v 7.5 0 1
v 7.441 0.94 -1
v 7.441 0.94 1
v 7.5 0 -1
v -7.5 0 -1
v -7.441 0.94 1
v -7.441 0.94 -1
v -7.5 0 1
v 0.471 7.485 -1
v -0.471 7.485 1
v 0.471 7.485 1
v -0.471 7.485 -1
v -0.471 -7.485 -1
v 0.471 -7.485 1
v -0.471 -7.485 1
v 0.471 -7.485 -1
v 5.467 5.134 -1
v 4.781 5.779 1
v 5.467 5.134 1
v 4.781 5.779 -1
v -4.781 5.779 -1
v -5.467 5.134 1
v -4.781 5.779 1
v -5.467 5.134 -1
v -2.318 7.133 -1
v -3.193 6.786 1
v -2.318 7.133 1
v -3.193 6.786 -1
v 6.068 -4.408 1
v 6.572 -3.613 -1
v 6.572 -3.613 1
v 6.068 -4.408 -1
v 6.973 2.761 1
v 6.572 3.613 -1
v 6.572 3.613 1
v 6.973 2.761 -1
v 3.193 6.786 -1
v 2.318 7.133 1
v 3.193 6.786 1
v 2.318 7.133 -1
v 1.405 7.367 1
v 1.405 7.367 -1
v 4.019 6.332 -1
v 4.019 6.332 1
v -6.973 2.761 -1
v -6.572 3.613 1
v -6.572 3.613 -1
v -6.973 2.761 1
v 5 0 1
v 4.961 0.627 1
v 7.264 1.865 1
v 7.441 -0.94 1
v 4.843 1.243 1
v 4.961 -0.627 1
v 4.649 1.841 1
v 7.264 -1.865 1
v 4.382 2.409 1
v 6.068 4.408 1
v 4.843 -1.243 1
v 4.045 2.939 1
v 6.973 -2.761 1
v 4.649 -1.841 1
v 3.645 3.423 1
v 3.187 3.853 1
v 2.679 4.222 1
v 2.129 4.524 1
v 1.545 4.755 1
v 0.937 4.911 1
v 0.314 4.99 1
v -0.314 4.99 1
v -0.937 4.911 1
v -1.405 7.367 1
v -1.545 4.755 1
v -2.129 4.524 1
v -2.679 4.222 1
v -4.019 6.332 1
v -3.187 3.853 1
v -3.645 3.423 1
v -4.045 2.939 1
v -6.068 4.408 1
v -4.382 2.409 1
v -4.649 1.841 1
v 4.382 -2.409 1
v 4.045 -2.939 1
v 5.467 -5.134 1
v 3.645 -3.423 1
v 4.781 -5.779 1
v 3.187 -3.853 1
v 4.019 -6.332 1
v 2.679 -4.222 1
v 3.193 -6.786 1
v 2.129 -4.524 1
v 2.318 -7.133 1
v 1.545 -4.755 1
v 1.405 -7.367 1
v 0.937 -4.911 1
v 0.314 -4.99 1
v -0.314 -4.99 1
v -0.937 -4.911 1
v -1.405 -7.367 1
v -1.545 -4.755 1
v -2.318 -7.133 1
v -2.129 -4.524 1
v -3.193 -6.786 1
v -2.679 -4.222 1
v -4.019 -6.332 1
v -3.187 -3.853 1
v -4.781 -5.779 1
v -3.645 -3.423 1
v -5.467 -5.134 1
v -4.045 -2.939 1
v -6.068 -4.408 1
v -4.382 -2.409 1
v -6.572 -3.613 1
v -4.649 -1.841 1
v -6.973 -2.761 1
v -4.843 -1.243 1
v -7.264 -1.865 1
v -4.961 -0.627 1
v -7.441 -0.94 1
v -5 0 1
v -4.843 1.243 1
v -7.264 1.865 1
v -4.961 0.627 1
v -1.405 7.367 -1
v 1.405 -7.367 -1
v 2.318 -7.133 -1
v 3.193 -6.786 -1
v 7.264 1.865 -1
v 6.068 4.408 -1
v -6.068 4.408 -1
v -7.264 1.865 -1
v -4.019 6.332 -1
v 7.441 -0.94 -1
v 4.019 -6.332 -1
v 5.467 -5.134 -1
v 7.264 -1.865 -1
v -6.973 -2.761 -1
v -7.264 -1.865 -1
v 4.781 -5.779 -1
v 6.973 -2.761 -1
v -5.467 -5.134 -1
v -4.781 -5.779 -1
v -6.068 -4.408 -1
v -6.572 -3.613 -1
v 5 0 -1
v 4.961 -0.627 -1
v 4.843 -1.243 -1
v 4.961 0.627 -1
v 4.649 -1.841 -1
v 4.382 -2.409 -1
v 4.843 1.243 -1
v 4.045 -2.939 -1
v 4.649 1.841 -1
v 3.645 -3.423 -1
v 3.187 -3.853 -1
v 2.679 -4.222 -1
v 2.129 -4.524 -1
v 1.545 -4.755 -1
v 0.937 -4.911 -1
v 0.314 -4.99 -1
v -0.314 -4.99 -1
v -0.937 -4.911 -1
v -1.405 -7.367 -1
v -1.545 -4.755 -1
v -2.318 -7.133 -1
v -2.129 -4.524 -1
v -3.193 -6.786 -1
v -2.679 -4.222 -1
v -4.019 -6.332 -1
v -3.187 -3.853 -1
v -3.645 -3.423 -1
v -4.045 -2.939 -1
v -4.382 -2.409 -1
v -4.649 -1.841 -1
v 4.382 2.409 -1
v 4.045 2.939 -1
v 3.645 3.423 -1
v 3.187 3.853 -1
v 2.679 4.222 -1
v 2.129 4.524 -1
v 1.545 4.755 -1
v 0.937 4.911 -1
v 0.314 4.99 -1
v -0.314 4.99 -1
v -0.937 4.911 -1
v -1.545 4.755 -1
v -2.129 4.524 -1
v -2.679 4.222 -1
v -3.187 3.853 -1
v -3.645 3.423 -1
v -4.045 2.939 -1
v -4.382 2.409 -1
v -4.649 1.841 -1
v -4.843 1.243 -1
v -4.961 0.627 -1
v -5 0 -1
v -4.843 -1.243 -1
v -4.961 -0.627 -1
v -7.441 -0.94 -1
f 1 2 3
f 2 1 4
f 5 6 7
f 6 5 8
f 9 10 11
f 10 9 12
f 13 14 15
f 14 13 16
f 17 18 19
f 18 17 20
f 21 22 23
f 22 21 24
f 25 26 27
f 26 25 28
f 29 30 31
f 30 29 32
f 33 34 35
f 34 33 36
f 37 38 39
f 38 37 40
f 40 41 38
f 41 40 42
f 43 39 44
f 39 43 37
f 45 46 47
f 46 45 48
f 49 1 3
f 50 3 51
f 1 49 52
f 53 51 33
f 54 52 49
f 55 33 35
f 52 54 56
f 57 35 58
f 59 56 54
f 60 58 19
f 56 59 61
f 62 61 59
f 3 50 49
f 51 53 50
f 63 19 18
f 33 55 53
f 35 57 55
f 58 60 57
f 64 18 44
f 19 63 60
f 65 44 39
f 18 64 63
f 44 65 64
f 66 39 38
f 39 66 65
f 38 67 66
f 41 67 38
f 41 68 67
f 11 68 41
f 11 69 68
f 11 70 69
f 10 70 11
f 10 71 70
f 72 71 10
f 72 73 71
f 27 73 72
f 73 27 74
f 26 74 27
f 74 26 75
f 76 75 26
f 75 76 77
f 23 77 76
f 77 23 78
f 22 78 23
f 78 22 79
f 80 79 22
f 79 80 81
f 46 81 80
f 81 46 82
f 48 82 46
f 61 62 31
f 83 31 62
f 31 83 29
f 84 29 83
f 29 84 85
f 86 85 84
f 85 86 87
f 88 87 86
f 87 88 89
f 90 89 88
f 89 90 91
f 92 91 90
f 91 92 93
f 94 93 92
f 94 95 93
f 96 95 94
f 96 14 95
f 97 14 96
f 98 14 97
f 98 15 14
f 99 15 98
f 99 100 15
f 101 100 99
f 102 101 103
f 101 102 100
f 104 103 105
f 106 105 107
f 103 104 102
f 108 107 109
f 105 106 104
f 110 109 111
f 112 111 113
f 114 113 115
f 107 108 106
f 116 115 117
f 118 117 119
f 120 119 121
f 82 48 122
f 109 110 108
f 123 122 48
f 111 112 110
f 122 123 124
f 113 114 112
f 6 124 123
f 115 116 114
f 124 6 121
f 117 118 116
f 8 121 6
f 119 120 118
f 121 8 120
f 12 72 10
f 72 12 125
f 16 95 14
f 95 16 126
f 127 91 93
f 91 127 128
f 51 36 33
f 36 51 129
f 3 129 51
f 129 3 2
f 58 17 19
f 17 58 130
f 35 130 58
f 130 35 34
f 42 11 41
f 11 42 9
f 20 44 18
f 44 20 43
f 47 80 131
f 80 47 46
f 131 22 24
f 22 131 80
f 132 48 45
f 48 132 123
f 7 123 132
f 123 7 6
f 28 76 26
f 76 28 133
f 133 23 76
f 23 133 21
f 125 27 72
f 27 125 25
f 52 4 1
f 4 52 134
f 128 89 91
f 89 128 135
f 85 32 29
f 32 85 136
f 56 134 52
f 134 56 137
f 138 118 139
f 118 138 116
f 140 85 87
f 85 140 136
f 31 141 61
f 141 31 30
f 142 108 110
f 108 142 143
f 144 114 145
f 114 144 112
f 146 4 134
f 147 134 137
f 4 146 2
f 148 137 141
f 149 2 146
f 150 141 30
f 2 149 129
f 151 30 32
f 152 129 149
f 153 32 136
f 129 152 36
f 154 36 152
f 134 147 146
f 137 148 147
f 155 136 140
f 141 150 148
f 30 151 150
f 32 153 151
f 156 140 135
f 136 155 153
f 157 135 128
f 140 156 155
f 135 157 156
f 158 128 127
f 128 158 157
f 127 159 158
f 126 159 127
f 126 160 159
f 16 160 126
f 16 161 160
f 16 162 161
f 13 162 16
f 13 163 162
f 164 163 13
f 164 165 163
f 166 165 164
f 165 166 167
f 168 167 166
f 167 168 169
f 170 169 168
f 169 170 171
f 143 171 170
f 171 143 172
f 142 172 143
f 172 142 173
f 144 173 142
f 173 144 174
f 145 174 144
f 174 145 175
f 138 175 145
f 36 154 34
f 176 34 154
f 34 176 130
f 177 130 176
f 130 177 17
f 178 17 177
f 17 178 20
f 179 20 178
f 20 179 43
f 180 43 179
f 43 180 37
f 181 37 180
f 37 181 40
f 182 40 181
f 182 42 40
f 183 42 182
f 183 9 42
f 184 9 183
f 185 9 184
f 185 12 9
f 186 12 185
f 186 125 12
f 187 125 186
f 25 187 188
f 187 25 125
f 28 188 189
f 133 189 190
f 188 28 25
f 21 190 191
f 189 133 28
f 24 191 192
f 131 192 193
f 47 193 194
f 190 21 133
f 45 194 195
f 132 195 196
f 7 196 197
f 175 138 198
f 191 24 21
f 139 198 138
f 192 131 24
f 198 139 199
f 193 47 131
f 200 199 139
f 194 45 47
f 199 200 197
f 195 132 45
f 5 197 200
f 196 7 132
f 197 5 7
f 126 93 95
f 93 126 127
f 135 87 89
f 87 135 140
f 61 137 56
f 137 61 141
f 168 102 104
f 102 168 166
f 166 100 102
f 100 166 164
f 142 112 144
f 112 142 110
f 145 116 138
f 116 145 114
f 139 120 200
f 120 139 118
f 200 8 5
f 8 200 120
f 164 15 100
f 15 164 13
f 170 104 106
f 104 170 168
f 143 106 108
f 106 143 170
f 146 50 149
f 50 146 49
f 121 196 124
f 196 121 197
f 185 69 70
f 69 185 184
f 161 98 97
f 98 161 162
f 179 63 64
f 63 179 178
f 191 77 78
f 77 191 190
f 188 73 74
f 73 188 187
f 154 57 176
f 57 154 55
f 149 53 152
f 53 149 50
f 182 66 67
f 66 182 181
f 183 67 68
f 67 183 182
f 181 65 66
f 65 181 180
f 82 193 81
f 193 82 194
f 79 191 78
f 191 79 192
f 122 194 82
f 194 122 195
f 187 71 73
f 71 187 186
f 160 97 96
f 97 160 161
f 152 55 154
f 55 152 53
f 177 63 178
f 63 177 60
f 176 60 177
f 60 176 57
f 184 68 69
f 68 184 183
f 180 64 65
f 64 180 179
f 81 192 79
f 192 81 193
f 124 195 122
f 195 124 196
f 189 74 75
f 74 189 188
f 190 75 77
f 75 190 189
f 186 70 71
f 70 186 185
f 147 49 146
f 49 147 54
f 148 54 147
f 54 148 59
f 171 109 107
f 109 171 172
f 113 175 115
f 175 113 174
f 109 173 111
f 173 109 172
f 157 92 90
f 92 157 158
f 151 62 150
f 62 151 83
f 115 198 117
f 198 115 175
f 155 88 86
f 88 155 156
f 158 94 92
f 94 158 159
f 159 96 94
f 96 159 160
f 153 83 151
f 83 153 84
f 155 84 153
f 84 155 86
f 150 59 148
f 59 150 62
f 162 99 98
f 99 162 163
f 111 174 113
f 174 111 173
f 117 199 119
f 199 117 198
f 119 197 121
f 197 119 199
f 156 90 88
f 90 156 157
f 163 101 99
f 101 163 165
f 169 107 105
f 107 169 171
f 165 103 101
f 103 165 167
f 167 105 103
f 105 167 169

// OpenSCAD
$fn = 50;


difference() {
	union() {
		translate(v = [0, 0, -1.0000000000]) {
			cylinder(h = 2, r = 7.5000000000);
		}
	}
	union() {
		translate(v = [0, 0, -100.0000000000]) {
			cylinder(h = 200, r = 5);
		}
	}
}
